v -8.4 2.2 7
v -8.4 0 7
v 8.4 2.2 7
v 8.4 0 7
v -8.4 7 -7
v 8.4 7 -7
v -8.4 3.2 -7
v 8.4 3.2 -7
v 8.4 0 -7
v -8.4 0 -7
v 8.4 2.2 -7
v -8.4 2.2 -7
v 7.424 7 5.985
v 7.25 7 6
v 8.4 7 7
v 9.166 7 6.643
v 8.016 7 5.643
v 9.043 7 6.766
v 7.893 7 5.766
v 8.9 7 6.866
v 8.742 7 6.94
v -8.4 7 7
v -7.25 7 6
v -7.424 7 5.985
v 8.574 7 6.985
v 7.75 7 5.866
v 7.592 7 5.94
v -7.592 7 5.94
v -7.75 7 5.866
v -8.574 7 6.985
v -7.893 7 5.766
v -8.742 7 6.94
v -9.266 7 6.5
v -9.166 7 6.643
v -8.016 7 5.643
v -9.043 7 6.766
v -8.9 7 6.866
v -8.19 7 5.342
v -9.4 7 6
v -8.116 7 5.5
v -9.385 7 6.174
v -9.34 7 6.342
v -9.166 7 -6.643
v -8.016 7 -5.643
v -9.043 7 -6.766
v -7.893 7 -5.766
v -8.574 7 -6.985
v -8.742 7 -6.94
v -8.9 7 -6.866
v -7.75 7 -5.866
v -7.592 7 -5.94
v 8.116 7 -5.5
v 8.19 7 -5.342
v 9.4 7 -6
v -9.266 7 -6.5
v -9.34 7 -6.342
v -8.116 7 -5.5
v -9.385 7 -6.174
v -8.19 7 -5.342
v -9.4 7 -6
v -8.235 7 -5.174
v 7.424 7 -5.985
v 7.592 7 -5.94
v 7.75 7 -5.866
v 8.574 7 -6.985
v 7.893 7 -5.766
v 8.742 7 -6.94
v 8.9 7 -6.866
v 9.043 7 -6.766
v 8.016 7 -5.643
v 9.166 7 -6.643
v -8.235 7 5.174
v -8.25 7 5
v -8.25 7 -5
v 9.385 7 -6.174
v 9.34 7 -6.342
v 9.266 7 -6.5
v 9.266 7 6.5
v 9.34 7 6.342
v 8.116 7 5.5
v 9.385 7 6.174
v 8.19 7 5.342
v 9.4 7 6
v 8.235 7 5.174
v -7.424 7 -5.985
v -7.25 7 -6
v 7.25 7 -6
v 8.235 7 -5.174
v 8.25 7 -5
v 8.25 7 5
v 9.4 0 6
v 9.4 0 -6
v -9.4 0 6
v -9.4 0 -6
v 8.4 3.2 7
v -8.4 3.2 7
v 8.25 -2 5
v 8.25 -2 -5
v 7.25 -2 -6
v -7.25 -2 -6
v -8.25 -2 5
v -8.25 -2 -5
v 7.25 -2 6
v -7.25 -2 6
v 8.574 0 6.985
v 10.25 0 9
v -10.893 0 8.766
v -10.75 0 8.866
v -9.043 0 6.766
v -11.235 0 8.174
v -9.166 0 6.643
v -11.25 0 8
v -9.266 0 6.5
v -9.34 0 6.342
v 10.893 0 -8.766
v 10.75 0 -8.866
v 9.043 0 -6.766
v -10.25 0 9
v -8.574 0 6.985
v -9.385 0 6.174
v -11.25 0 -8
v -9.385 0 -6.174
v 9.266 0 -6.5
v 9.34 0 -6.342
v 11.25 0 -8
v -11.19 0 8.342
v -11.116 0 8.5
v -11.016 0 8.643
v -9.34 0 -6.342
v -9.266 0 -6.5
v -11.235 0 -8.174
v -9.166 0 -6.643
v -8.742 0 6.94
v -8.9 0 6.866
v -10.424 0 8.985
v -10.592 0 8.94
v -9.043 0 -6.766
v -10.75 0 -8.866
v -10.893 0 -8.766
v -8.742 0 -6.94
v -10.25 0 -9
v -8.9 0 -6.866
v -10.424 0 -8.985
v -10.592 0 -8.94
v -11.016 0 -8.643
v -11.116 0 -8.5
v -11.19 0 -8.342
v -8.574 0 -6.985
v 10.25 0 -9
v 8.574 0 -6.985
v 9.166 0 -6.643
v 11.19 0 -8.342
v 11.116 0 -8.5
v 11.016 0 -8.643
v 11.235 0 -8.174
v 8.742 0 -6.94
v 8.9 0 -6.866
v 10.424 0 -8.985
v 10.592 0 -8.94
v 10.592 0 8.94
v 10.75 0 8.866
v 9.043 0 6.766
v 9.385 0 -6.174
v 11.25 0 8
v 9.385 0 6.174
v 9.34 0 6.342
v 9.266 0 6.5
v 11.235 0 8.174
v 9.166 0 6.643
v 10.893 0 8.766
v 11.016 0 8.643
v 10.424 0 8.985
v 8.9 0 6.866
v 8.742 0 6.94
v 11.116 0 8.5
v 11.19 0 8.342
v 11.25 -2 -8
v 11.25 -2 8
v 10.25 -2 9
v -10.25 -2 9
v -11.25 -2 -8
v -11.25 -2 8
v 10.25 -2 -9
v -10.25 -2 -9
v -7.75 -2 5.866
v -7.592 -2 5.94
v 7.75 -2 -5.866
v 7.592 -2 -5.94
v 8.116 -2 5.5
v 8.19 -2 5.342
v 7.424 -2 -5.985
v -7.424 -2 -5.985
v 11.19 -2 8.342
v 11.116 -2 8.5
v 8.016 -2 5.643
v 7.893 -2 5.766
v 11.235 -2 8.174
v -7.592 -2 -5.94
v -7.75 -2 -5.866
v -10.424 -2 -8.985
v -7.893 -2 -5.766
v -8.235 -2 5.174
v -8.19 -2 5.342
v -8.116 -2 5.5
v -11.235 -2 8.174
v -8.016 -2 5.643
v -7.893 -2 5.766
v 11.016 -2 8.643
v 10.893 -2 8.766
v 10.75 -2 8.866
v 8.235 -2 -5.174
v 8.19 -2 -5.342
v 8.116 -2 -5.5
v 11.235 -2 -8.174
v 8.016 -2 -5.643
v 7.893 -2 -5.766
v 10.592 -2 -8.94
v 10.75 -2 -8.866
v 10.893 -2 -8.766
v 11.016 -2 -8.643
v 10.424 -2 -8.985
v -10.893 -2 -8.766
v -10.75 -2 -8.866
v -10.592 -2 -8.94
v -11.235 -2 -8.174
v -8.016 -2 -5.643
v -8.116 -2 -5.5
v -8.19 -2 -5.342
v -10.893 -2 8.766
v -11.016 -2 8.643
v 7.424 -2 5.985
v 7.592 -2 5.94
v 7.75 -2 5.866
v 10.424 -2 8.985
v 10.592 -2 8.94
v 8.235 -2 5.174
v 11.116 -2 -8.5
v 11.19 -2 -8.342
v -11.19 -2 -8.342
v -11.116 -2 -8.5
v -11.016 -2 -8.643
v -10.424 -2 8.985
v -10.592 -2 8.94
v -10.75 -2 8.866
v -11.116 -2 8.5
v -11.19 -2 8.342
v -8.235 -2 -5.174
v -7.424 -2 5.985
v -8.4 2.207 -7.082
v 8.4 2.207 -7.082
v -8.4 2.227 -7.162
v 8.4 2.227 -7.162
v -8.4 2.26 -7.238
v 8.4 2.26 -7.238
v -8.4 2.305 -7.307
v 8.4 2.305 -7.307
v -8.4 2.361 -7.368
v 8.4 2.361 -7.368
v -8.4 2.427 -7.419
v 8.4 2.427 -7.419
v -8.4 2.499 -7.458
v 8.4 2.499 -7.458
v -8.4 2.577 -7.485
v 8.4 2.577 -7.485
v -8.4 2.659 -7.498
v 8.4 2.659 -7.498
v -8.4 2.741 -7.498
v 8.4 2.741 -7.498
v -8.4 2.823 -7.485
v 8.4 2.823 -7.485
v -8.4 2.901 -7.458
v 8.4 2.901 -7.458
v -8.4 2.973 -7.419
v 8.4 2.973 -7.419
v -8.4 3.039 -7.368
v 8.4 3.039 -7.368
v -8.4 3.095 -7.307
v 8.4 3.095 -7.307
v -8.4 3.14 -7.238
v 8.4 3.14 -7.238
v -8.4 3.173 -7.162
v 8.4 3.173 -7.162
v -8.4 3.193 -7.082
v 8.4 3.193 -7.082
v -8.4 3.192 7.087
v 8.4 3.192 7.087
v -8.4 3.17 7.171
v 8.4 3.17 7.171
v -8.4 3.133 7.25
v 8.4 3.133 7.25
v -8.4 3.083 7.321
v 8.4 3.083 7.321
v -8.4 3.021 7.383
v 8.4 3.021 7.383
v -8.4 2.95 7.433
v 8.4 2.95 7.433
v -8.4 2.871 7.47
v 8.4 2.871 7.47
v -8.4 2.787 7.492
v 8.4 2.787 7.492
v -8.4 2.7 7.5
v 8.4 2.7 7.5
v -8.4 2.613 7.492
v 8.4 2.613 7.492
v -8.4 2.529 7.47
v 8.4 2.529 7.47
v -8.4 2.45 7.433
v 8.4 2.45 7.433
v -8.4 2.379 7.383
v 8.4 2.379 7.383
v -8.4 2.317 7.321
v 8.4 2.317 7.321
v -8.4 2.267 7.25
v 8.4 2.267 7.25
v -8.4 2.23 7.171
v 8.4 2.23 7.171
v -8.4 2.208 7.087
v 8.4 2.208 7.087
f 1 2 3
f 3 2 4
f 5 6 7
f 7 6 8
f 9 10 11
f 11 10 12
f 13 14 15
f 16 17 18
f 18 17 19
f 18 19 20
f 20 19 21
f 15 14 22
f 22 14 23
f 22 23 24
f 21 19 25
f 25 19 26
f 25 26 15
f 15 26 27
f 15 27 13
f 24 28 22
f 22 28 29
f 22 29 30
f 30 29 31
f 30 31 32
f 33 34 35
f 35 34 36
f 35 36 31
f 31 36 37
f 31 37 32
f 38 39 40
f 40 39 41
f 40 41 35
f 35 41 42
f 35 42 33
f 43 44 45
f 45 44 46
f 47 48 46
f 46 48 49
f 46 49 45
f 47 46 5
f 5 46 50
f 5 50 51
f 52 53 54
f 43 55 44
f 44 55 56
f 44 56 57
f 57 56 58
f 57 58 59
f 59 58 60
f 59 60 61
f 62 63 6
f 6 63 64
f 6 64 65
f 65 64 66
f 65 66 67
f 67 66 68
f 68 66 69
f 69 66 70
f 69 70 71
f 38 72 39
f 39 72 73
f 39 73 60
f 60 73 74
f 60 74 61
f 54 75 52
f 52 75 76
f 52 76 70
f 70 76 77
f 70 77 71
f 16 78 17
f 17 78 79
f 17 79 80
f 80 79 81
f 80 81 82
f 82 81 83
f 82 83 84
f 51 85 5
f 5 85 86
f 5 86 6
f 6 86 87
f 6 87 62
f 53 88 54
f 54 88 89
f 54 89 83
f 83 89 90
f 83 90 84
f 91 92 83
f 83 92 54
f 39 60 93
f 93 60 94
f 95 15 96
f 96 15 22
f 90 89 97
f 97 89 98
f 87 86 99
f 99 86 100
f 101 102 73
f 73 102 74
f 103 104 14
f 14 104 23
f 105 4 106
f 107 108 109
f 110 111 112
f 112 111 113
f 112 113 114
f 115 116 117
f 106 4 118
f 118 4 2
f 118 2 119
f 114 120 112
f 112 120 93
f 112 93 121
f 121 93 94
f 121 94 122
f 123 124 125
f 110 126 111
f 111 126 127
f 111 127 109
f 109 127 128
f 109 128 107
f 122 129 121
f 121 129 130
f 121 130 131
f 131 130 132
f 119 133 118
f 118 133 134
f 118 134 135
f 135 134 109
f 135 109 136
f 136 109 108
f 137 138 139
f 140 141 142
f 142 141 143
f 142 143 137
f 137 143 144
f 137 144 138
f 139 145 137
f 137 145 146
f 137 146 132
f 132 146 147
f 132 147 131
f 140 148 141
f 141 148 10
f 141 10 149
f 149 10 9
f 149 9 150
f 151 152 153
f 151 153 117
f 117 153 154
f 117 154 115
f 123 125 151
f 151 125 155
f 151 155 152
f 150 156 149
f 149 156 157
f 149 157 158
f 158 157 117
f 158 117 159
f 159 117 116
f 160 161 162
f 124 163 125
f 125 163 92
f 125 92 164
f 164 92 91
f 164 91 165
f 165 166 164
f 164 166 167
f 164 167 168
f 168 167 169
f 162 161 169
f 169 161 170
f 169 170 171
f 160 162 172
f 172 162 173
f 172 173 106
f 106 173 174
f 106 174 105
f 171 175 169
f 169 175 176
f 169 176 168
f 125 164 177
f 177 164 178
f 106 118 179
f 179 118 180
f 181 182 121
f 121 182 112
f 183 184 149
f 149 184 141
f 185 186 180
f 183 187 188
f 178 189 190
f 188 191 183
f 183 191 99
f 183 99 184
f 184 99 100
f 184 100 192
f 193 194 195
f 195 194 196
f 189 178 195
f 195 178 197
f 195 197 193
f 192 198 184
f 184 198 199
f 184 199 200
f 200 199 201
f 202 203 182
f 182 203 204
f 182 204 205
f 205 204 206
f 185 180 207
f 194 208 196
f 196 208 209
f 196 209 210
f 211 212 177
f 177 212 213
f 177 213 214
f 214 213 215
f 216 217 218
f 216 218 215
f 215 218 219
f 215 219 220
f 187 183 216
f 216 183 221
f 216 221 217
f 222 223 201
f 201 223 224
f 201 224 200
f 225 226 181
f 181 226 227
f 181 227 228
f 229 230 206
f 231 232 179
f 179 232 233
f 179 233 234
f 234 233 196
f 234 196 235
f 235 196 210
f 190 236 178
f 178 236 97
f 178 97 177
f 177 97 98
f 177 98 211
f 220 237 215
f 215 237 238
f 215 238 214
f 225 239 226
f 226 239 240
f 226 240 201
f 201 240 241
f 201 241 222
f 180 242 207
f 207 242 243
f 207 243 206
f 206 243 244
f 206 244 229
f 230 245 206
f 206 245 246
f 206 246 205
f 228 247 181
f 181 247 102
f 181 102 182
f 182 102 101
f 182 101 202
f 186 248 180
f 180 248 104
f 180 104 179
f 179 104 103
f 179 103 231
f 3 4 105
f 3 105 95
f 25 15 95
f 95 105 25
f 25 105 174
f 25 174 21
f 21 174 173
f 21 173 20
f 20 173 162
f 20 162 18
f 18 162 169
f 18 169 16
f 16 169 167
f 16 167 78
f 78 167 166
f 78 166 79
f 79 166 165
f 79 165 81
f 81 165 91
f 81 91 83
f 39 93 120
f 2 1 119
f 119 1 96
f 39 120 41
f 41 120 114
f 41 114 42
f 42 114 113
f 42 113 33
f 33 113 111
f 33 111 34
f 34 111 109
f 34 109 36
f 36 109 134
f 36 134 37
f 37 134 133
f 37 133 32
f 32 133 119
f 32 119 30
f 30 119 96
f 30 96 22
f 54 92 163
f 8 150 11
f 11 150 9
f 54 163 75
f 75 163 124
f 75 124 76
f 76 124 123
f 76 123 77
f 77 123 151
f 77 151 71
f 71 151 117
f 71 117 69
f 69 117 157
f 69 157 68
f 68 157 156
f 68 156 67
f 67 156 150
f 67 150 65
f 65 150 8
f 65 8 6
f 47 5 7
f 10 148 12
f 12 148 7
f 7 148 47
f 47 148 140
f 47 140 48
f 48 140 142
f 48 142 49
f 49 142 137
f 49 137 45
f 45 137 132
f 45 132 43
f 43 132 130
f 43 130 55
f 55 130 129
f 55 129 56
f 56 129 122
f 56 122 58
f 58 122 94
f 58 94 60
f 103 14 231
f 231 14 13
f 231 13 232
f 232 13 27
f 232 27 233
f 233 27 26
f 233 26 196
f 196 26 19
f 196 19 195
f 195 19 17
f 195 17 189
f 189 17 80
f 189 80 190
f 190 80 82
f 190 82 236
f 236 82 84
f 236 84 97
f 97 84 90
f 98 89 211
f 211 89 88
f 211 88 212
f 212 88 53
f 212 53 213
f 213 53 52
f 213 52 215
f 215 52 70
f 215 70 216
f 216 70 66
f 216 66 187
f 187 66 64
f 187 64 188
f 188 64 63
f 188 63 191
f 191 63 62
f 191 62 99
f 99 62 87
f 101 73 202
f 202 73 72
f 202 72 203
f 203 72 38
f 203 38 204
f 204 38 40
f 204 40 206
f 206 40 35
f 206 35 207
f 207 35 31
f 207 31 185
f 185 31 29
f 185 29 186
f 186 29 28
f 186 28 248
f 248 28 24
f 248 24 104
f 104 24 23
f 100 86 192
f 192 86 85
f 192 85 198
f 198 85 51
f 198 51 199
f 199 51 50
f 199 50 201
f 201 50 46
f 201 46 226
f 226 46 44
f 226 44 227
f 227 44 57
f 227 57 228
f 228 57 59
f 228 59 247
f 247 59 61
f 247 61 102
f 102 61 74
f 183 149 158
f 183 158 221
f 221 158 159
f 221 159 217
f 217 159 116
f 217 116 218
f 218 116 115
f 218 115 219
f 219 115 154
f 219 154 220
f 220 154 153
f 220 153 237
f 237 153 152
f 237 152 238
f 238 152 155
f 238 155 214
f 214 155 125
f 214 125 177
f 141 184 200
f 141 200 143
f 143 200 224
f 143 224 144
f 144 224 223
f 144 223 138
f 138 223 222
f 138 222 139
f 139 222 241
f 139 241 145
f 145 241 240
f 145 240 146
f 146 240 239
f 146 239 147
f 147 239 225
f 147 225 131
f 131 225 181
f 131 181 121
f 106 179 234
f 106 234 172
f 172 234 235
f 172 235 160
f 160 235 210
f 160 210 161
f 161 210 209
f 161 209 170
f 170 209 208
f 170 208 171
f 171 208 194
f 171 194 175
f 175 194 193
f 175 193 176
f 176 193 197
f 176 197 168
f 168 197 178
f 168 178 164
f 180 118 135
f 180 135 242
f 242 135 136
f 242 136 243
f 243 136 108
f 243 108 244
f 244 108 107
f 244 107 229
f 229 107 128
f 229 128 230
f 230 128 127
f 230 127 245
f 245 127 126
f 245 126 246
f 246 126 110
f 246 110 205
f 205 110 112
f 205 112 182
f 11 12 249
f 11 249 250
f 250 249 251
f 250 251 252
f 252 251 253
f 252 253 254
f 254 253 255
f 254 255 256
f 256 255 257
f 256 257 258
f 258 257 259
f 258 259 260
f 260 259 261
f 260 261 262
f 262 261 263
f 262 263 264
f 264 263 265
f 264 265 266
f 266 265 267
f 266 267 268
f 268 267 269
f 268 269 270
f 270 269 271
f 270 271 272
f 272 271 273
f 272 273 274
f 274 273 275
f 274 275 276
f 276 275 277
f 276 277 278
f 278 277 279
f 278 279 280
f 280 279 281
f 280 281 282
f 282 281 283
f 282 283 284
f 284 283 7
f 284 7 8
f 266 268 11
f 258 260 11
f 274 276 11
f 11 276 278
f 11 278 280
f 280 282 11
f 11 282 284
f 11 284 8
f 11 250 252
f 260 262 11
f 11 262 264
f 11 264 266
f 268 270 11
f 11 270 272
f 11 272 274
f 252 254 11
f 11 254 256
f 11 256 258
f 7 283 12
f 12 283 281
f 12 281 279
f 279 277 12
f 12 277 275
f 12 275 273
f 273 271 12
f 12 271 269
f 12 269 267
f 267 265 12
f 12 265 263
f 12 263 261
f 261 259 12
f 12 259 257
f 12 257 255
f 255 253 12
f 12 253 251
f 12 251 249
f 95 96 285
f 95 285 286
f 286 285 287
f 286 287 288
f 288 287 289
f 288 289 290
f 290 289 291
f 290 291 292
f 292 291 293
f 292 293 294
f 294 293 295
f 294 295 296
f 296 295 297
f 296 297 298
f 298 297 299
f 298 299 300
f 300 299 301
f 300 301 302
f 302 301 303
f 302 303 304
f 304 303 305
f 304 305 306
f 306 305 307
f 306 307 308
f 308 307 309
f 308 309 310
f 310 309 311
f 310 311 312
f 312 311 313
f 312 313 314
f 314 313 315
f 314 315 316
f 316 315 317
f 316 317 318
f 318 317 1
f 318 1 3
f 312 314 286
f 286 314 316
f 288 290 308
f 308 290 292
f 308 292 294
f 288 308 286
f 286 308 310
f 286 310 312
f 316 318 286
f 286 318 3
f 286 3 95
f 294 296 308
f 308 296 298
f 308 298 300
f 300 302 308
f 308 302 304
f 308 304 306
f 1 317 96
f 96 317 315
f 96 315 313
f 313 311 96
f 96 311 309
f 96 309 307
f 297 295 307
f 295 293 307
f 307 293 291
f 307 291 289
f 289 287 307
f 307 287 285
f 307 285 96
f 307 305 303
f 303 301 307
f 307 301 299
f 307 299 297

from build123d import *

# Parameters (mm, degrees)
SKETCH1_W           = 18.8
SKETCH1_H           = 14
SKETCH1_W_2         = 16.5
SKETCH1_H_2         = 12
BOSS_EXTRUDE1_DEPTH = 7
SKETCH2_W           = 22.5
SKETCH2_H           = 18
SKETCH2_W_2         = 18.8
SKETCH2_H_2         = 14
SKETCH2_W_3         = 16.5
SKETCH2_H_3         = 12
BOSS_EXTRUDE2_DEPTH = 2
FILLET2_R           = 1
BOSS_EXTRUDE6_DEPTH = 16.8


with BuildPart() as part:
    # Sketch1 → Boss-Extrude1 (new body)
    with BuildSketch(Plane(origin=(0, 0, 0), x_dir=(1, 0, 0), z_dir=(0, 1, 0))):
        Rectangle(SKETCH1_W, SKETCH1_H)
        Rectangle(SKETCH1_W_2, SKETCH1_H_2, mode=Mode.SUBTRACT)
    extrude(amount=BOSS_EXTRUDE1_DEPTH)

    # Sketch2 → Boss-Extrude2 (add)
    # profile 1 of 2: a face of its own
    with BuildSketch(Plane(origin=(0, 0, 0), x_dir=(1, 0, 0), z_dir=(0, 1, 0))):
        Rectangle(SKETCH2_W, SKETCH2_H)
        Rectangle(SKETCH2_W_2, SKETCH2_H_2, mode=Mode.SUBTRACT)
    # profile 2 of 2: a face of its own
    with BuildSketch(Plane(origin=(0, 0, 0), x_dir=(1, 0, 0), z_dir=(0, 1, 0))):
        Rectangle(SKETCH2_W_2, SKETCH2_H_2)
        Rectangle(SKETCH2_W_3, SKETCH2_H_3, mode=Mode.SUBTRACT)
    extrude(amount=-BOSS_EXTRUDE2_DEPTH)

    # Fillet2
    fillet2_edges = [part.edges().sort_by_distance(p)[0] for p in [
        (8.25, 2.5, 6),
        (8.25, 2.5, -6),
        (-8.25, 2.5, -6),
        (-8.25, 2.5, 6),
        (11.25, -1, -9),
        (11.25, -1, 9),
        (-11.25, -1, 9),
        (-11.25, -1, -9),
        (9.4, 3.5, 7),
        (-9.4, 3.5, 7),
        (-9.4, 3.5, -7),
        (9.4, 3.5, -7),
    ]]
    fillet(fillet2_edges, radius=FILLET2_R)

    # Sketch7 → Boss-Extrude6 (add)
    with BuildSketch(Plane(origin=(-8.4, 0, 0), x_dir=(0, 0, -1), z_dir=(1, 0, 0))):
        with BuildLine():
            ThreePointArc((7, 3.2), (6.5, 2.7), (7, 2.2))
            Line((7, 2.2), (7, 3.2))
        make_face()
        with BuildLine():
            Line((7, 3.2), (7, 2.2))
            ThreePointArc((7, 2.2), (7.353553391, 2.346446609), (7.5, 2.7))
            ThreePointArc((7.5, 2.7), (7.353553391, 3.053553391), (7, 3.2))
        make_face()
        with BuildLine():
            ThreePointArc((-7, 3.2), (-7.5, 2.7), (-7, 2.2))
            Line((-7, 2.2), (-7, 3.2))
        make_face()
        with BuildLine():
            Line((-7, 3.2), (-7, 2.2))
            ThreePointArc((-7, 2.2), (-6.646446609, 2.346446609), (-6.5, 2.7))
            ThreePointArc((-6.5, 2.7), (-6.646446609, 3.053553391), (-7, 3.2))
        make_face()
    extrude(amount=BOSS_EXTRUDE6_DEPTH)


solid = part.part
